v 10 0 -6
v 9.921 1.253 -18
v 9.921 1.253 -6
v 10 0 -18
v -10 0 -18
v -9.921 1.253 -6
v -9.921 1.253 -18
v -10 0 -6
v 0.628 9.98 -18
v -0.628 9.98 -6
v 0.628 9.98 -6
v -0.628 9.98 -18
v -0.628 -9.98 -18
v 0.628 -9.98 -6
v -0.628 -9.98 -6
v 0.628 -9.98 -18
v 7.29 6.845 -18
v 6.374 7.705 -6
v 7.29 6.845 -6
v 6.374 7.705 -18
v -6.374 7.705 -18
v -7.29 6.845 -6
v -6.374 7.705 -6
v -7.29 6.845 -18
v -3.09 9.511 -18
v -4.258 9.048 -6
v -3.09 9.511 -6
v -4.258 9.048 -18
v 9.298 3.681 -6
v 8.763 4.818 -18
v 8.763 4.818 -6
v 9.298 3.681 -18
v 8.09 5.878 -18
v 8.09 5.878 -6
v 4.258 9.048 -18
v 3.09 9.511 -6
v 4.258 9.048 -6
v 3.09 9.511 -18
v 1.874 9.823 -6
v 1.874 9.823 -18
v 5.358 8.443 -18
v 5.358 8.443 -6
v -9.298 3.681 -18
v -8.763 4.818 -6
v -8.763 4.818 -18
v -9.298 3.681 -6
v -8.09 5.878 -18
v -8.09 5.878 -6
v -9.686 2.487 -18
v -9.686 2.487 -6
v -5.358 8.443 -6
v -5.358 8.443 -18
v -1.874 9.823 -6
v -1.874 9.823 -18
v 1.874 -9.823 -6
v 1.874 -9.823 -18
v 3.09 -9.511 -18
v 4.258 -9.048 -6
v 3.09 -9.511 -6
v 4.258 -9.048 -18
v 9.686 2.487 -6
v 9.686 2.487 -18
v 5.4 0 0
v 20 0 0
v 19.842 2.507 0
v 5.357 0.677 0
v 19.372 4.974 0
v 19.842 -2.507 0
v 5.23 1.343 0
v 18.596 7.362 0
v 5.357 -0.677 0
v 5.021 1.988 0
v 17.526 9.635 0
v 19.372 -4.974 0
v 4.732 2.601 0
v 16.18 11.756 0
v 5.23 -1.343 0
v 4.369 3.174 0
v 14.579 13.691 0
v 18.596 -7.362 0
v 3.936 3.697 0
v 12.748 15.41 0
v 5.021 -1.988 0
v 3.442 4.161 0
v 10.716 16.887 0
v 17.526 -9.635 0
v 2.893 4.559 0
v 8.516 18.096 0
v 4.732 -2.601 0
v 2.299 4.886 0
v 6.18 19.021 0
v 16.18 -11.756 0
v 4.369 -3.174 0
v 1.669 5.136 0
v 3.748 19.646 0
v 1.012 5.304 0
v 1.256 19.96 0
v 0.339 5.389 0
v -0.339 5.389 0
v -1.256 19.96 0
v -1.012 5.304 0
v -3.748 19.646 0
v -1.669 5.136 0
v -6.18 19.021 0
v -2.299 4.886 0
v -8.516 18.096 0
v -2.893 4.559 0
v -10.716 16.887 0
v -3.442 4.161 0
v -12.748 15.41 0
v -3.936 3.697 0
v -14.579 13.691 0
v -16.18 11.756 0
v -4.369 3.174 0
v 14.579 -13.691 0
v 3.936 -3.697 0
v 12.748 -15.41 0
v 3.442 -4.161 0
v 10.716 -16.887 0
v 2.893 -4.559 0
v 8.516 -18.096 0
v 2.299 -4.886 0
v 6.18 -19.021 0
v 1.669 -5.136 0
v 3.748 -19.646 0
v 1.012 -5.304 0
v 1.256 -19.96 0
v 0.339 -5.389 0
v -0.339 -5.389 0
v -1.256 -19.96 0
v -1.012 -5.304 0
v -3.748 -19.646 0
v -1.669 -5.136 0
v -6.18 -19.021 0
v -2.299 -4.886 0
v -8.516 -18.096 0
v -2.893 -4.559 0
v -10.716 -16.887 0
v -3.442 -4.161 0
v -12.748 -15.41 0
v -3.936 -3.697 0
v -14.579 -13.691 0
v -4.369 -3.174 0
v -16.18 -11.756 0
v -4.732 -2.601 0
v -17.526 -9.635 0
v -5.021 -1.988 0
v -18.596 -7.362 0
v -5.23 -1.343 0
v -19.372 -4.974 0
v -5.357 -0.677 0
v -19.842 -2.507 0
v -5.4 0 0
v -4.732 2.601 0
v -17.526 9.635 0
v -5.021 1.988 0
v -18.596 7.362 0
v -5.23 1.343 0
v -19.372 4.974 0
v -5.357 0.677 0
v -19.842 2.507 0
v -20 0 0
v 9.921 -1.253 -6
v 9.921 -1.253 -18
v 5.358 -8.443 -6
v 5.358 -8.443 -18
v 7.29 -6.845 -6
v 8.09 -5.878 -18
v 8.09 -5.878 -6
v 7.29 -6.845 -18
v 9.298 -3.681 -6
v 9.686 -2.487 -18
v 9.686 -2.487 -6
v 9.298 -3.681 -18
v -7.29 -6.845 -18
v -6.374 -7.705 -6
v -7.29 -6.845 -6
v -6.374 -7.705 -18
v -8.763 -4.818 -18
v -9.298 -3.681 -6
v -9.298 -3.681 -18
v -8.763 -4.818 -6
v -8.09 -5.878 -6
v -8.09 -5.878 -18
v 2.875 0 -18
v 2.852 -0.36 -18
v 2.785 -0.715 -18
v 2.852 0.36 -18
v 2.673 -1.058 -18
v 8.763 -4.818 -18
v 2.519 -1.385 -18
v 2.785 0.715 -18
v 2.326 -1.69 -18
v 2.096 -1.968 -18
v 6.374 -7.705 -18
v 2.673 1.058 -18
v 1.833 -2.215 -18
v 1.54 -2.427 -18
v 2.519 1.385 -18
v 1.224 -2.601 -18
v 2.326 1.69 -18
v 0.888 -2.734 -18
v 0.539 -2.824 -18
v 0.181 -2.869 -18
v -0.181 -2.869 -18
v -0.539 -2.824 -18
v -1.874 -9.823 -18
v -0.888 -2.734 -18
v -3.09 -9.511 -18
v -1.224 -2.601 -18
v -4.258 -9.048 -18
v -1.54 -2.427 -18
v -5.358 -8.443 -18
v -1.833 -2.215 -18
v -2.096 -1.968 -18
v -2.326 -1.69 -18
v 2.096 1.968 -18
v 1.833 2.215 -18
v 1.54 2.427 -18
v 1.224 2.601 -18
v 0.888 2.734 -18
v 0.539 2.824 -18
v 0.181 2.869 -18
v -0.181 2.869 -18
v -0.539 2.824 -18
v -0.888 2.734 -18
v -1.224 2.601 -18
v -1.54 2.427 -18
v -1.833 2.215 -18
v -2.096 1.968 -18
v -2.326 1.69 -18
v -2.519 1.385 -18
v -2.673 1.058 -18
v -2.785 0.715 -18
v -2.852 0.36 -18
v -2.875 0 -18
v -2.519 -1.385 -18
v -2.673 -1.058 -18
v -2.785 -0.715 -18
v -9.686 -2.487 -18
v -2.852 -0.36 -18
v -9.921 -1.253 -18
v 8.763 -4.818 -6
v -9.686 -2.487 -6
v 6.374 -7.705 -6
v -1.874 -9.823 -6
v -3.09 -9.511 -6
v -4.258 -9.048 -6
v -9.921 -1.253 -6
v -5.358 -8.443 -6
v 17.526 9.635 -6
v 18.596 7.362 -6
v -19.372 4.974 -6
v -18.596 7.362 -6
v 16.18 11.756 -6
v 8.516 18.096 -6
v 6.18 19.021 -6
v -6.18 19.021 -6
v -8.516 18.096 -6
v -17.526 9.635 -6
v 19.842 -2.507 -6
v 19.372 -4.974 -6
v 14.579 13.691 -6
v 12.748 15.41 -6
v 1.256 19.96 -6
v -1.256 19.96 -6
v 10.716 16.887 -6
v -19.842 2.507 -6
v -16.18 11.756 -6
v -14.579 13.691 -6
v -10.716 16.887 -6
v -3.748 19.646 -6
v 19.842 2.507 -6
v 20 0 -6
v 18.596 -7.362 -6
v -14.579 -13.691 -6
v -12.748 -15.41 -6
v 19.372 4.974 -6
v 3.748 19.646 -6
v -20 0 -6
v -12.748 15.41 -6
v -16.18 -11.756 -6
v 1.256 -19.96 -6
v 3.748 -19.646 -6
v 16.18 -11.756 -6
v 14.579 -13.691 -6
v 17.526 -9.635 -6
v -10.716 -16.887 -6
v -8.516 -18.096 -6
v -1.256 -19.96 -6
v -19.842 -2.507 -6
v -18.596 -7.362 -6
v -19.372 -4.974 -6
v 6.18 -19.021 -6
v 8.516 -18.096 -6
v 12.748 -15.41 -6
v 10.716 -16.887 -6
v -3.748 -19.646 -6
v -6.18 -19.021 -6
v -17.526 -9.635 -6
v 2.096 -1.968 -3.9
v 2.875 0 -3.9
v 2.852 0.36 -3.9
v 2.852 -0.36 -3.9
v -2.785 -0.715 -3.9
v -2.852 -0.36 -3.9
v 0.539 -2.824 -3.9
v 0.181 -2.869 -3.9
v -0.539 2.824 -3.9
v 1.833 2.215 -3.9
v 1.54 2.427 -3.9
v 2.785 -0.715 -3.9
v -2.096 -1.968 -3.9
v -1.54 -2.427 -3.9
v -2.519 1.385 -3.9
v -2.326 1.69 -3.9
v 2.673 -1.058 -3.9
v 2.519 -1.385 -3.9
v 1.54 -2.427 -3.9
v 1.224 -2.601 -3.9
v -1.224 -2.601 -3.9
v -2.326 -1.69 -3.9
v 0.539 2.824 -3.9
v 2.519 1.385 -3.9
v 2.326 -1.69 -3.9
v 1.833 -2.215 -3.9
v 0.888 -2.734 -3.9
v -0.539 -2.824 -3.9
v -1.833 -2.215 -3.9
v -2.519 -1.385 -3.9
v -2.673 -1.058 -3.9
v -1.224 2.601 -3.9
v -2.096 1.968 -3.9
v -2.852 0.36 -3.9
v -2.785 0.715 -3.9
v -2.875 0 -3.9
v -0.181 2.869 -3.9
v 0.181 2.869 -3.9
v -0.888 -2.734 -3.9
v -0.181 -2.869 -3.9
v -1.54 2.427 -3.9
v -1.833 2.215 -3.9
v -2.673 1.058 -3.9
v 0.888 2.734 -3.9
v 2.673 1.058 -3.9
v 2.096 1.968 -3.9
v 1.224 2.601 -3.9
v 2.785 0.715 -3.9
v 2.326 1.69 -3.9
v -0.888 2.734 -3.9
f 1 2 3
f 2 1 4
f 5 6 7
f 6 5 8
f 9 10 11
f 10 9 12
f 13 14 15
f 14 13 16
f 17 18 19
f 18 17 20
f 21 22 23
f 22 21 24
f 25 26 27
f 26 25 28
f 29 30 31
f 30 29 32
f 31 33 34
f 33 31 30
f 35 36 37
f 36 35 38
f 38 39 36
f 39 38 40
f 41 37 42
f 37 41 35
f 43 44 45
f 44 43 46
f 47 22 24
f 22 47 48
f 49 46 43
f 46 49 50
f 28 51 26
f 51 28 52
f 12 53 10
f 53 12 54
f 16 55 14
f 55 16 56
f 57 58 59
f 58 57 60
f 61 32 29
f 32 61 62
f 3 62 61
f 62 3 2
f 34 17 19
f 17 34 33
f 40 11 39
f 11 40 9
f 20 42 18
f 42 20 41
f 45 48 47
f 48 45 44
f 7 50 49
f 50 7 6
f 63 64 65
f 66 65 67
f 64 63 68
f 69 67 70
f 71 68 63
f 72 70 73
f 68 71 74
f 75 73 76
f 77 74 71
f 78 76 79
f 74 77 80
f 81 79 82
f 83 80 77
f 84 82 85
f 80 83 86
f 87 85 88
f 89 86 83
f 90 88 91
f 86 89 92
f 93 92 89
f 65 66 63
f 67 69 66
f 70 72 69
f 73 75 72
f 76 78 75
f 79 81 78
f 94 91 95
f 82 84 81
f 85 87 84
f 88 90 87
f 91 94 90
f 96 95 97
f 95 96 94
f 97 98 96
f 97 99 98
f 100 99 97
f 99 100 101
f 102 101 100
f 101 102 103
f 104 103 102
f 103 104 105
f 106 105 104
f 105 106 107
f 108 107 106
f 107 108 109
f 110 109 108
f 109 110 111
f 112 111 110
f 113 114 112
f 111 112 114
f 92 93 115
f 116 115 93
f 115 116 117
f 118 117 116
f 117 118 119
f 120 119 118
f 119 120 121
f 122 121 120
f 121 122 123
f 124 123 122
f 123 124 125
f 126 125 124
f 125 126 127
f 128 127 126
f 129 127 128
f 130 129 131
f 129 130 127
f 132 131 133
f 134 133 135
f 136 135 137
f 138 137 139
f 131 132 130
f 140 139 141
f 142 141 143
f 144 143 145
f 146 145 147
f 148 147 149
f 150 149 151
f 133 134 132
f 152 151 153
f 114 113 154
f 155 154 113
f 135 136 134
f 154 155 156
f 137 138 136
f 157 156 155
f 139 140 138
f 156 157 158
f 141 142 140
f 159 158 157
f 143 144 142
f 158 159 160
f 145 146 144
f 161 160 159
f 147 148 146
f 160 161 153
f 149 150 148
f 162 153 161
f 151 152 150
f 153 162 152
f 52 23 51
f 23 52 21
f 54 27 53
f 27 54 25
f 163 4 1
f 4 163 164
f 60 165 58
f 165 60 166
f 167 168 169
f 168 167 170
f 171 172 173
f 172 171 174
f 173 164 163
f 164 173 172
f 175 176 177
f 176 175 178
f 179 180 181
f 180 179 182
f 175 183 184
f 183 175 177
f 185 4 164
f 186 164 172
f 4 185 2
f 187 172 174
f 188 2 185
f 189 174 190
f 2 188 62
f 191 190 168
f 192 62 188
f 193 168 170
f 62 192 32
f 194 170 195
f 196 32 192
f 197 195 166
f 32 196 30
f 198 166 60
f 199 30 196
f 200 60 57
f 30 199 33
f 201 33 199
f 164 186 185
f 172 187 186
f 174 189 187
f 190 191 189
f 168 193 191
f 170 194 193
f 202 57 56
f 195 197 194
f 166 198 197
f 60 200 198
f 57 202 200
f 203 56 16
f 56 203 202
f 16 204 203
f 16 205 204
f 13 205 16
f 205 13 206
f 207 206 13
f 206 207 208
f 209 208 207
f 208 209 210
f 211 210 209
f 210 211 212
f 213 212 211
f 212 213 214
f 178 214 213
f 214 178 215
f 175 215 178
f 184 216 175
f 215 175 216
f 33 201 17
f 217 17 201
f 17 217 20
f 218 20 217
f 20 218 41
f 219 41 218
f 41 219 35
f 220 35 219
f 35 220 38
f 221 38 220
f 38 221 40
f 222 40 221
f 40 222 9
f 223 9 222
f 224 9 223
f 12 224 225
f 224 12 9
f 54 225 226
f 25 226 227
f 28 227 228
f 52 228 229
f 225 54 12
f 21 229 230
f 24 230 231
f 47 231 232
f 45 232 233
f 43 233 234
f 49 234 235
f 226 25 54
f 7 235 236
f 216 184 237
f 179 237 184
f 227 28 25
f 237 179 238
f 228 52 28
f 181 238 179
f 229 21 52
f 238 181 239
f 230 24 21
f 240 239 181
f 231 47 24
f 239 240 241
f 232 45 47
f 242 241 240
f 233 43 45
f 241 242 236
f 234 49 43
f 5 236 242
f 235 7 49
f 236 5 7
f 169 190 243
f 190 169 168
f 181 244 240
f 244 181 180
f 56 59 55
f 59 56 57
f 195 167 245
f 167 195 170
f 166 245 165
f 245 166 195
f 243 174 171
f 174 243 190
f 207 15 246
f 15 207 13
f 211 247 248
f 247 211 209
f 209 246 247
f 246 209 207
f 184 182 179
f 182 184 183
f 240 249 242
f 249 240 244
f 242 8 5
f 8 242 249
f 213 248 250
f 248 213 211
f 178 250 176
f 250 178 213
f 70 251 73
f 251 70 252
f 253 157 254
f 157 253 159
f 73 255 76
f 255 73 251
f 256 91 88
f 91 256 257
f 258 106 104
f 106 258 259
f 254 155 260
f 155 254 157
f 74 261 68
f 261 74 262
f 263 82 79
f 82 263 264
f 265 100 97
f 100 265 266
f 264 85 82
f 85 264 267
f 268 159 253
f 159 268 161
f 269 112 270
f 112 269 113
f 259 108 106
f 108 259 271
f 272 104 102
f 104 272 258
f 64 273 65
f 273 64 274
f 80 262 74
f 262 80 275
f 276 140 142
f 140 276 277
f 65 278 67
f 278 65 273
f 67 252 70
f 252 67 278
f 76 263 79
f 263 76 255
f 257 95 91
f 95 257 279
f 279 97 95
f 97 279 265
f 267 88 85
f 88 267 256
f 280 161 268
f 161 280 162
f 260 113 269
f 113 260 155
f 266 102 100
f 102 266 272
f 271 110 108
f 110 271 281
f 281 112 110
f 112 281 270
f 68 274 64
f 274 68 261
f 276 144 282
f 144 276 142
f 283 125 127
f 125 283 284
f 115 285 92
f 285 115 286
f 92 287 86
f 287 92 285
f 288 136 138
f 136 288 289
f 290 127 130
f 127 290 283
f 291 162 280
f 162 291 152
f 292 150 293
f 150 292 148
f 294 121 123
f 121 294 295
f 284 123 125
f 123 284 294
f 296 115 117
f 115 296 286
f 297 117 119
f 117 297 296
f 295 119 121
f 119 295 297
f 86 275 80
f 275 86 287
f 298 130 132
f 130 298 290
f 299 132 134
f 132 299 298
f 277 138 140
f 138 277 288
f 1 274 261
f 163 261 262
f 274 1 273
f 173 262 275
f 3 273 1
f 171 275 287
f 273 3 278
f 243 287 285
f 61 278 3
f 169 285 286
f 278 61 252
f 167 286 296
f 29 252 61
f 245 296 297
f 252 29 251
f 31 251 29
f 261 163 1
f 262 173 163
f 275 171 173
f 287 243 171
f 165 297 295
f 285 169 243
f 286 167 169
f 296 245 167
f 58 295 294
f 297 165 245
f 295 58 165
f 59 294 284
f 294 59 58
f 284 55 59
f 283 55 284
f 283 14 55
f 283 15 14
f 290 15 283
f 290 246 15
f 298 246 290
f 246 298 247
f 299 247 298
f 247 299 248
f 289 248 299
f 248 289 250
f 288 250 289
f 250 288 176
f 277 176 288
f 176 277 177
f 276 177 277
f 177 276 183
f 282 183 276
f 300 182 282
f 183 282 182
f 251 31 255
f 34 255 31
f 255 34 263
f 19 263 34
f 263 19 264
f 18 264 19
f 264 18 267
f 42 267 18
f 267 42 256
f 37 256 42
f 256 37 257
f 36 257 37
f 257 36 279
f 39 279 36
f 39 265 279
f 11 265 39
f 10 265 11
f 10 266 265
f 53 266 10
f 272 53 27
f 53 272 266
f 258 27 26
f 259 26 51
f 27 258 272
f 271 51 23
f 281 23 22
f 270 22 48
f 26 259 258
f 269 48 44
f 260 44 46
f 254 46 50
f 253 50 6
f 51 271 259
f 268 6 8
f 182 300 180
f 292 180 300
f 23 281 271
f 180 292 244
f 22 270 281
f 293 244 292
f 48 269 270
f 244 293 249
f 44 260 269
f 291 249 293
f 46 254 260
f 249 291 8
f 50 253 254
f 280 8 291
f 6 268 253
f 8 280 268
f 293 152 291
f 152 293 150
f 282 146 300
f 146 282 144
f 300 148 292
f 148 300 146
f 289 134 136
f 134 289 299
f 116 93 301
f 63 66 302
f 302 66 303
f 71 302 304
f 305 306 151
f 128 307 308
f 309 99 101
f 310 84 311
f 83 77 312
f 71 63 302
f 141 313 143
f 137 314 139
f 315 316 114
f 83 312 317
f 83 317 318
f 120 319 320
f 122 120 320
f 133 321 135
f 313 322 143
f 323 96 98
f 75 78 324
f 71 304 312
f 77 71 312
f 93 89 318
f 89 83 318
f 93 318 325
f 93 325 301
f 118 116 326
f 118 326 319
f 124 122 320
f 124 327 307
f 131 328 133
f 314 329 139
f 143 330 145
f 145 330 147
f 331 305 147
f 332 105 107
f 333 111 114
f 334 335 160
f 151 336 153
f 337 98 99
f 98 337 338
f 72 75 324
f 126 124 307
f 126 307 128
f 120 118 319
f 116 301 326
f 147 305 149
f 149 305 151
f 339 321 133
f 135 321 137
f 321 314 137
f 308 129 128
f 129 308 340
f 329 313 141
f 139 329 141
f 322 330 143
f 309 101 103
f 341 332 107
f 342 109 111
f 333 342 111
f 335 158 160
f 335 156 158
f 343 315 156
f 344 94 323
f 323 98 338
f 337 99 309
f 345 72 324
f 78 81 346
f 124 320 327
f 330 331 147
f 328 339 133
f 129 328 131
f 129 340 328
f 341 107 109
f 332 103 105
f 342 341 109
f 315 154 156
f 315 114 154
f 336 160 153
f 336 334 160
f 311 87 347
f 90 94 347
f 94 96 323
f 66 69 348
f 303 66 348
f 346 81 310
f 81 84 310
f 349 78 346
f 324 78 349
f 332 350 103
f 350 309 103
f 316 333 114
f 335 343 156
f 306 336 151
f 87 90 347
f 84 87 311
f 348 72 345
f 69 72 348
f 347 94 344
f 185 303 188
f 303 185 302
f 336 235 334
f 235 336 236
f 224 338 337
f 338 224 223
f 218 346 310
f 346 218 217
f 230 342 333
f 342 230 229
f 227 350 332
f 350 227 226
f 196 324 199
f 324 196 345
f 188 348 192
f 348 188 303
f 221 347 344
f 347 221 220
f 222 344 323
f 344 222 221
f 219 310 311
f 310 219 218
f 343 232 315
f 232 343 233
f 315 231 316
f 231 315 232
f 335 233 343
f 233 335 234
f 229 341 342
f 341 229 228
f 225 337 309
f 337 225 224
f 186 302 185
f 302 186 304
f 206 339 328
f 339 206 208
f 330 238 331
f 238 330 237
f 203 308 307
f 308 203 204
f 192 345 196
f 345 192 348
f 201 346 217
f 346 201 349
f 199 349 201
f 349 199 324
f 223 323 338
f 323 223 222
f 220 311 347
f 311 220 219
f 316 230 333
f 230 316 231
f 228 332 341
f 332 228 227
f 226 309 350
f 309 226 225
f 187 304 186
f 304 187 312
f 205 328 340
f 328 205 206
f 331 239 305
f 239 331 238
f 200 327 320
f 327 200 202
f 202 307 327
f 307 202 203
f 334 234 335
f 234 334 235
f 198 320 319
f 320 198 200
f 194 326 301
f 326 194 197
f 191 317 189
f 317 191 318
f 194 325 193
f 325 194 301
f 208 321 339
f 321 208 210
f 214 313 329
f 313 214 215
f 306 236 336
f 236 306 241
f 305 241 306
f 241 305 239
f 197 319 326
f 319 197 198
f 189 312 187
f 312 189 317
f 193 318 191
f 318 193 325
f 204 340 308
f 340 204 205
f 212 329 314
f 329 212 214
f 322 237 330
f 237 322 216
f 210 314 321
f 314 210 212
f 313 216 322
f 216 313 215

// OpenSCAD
$fn = 50;


difference() {
	union() {
		translate(v = [0, 0, -18.0000000000]) {
			cylinder(h = 18, r = 10.0000000000);
		}
		translate(v = [0, 0, -6.0000000000]) {
			cylinder(h = 6, r = 20.0000000000);
		}
	}
	union() {
		translate(v = [0, 0, 0]) {
			rotate(a = [0, 0, 0]) {
				difference() {
					union() {
						#translate(v = [0, 0, -18.0000000000]) {
							cylinder(h = 18, r = 2.6000000000);
						}
						#translate(v = [0, 0, -3.9000000000]) {
							cylinder(h = 3.9000000000, r = 10.0000000000, r1 = 2.8750000000, r2 = 5.4000000000);
						}
						#translate(v = [0, 0, -18.0000000000]) {
							cylinder(h = 18, r = 2.8750000000);
						}
						#translate(v = [0, 0, -18.0000000000]) {
							cylinder(h = 18, r = 2.6000000000);
						}
					}
					union();
				}
			}
		}
	}
}
